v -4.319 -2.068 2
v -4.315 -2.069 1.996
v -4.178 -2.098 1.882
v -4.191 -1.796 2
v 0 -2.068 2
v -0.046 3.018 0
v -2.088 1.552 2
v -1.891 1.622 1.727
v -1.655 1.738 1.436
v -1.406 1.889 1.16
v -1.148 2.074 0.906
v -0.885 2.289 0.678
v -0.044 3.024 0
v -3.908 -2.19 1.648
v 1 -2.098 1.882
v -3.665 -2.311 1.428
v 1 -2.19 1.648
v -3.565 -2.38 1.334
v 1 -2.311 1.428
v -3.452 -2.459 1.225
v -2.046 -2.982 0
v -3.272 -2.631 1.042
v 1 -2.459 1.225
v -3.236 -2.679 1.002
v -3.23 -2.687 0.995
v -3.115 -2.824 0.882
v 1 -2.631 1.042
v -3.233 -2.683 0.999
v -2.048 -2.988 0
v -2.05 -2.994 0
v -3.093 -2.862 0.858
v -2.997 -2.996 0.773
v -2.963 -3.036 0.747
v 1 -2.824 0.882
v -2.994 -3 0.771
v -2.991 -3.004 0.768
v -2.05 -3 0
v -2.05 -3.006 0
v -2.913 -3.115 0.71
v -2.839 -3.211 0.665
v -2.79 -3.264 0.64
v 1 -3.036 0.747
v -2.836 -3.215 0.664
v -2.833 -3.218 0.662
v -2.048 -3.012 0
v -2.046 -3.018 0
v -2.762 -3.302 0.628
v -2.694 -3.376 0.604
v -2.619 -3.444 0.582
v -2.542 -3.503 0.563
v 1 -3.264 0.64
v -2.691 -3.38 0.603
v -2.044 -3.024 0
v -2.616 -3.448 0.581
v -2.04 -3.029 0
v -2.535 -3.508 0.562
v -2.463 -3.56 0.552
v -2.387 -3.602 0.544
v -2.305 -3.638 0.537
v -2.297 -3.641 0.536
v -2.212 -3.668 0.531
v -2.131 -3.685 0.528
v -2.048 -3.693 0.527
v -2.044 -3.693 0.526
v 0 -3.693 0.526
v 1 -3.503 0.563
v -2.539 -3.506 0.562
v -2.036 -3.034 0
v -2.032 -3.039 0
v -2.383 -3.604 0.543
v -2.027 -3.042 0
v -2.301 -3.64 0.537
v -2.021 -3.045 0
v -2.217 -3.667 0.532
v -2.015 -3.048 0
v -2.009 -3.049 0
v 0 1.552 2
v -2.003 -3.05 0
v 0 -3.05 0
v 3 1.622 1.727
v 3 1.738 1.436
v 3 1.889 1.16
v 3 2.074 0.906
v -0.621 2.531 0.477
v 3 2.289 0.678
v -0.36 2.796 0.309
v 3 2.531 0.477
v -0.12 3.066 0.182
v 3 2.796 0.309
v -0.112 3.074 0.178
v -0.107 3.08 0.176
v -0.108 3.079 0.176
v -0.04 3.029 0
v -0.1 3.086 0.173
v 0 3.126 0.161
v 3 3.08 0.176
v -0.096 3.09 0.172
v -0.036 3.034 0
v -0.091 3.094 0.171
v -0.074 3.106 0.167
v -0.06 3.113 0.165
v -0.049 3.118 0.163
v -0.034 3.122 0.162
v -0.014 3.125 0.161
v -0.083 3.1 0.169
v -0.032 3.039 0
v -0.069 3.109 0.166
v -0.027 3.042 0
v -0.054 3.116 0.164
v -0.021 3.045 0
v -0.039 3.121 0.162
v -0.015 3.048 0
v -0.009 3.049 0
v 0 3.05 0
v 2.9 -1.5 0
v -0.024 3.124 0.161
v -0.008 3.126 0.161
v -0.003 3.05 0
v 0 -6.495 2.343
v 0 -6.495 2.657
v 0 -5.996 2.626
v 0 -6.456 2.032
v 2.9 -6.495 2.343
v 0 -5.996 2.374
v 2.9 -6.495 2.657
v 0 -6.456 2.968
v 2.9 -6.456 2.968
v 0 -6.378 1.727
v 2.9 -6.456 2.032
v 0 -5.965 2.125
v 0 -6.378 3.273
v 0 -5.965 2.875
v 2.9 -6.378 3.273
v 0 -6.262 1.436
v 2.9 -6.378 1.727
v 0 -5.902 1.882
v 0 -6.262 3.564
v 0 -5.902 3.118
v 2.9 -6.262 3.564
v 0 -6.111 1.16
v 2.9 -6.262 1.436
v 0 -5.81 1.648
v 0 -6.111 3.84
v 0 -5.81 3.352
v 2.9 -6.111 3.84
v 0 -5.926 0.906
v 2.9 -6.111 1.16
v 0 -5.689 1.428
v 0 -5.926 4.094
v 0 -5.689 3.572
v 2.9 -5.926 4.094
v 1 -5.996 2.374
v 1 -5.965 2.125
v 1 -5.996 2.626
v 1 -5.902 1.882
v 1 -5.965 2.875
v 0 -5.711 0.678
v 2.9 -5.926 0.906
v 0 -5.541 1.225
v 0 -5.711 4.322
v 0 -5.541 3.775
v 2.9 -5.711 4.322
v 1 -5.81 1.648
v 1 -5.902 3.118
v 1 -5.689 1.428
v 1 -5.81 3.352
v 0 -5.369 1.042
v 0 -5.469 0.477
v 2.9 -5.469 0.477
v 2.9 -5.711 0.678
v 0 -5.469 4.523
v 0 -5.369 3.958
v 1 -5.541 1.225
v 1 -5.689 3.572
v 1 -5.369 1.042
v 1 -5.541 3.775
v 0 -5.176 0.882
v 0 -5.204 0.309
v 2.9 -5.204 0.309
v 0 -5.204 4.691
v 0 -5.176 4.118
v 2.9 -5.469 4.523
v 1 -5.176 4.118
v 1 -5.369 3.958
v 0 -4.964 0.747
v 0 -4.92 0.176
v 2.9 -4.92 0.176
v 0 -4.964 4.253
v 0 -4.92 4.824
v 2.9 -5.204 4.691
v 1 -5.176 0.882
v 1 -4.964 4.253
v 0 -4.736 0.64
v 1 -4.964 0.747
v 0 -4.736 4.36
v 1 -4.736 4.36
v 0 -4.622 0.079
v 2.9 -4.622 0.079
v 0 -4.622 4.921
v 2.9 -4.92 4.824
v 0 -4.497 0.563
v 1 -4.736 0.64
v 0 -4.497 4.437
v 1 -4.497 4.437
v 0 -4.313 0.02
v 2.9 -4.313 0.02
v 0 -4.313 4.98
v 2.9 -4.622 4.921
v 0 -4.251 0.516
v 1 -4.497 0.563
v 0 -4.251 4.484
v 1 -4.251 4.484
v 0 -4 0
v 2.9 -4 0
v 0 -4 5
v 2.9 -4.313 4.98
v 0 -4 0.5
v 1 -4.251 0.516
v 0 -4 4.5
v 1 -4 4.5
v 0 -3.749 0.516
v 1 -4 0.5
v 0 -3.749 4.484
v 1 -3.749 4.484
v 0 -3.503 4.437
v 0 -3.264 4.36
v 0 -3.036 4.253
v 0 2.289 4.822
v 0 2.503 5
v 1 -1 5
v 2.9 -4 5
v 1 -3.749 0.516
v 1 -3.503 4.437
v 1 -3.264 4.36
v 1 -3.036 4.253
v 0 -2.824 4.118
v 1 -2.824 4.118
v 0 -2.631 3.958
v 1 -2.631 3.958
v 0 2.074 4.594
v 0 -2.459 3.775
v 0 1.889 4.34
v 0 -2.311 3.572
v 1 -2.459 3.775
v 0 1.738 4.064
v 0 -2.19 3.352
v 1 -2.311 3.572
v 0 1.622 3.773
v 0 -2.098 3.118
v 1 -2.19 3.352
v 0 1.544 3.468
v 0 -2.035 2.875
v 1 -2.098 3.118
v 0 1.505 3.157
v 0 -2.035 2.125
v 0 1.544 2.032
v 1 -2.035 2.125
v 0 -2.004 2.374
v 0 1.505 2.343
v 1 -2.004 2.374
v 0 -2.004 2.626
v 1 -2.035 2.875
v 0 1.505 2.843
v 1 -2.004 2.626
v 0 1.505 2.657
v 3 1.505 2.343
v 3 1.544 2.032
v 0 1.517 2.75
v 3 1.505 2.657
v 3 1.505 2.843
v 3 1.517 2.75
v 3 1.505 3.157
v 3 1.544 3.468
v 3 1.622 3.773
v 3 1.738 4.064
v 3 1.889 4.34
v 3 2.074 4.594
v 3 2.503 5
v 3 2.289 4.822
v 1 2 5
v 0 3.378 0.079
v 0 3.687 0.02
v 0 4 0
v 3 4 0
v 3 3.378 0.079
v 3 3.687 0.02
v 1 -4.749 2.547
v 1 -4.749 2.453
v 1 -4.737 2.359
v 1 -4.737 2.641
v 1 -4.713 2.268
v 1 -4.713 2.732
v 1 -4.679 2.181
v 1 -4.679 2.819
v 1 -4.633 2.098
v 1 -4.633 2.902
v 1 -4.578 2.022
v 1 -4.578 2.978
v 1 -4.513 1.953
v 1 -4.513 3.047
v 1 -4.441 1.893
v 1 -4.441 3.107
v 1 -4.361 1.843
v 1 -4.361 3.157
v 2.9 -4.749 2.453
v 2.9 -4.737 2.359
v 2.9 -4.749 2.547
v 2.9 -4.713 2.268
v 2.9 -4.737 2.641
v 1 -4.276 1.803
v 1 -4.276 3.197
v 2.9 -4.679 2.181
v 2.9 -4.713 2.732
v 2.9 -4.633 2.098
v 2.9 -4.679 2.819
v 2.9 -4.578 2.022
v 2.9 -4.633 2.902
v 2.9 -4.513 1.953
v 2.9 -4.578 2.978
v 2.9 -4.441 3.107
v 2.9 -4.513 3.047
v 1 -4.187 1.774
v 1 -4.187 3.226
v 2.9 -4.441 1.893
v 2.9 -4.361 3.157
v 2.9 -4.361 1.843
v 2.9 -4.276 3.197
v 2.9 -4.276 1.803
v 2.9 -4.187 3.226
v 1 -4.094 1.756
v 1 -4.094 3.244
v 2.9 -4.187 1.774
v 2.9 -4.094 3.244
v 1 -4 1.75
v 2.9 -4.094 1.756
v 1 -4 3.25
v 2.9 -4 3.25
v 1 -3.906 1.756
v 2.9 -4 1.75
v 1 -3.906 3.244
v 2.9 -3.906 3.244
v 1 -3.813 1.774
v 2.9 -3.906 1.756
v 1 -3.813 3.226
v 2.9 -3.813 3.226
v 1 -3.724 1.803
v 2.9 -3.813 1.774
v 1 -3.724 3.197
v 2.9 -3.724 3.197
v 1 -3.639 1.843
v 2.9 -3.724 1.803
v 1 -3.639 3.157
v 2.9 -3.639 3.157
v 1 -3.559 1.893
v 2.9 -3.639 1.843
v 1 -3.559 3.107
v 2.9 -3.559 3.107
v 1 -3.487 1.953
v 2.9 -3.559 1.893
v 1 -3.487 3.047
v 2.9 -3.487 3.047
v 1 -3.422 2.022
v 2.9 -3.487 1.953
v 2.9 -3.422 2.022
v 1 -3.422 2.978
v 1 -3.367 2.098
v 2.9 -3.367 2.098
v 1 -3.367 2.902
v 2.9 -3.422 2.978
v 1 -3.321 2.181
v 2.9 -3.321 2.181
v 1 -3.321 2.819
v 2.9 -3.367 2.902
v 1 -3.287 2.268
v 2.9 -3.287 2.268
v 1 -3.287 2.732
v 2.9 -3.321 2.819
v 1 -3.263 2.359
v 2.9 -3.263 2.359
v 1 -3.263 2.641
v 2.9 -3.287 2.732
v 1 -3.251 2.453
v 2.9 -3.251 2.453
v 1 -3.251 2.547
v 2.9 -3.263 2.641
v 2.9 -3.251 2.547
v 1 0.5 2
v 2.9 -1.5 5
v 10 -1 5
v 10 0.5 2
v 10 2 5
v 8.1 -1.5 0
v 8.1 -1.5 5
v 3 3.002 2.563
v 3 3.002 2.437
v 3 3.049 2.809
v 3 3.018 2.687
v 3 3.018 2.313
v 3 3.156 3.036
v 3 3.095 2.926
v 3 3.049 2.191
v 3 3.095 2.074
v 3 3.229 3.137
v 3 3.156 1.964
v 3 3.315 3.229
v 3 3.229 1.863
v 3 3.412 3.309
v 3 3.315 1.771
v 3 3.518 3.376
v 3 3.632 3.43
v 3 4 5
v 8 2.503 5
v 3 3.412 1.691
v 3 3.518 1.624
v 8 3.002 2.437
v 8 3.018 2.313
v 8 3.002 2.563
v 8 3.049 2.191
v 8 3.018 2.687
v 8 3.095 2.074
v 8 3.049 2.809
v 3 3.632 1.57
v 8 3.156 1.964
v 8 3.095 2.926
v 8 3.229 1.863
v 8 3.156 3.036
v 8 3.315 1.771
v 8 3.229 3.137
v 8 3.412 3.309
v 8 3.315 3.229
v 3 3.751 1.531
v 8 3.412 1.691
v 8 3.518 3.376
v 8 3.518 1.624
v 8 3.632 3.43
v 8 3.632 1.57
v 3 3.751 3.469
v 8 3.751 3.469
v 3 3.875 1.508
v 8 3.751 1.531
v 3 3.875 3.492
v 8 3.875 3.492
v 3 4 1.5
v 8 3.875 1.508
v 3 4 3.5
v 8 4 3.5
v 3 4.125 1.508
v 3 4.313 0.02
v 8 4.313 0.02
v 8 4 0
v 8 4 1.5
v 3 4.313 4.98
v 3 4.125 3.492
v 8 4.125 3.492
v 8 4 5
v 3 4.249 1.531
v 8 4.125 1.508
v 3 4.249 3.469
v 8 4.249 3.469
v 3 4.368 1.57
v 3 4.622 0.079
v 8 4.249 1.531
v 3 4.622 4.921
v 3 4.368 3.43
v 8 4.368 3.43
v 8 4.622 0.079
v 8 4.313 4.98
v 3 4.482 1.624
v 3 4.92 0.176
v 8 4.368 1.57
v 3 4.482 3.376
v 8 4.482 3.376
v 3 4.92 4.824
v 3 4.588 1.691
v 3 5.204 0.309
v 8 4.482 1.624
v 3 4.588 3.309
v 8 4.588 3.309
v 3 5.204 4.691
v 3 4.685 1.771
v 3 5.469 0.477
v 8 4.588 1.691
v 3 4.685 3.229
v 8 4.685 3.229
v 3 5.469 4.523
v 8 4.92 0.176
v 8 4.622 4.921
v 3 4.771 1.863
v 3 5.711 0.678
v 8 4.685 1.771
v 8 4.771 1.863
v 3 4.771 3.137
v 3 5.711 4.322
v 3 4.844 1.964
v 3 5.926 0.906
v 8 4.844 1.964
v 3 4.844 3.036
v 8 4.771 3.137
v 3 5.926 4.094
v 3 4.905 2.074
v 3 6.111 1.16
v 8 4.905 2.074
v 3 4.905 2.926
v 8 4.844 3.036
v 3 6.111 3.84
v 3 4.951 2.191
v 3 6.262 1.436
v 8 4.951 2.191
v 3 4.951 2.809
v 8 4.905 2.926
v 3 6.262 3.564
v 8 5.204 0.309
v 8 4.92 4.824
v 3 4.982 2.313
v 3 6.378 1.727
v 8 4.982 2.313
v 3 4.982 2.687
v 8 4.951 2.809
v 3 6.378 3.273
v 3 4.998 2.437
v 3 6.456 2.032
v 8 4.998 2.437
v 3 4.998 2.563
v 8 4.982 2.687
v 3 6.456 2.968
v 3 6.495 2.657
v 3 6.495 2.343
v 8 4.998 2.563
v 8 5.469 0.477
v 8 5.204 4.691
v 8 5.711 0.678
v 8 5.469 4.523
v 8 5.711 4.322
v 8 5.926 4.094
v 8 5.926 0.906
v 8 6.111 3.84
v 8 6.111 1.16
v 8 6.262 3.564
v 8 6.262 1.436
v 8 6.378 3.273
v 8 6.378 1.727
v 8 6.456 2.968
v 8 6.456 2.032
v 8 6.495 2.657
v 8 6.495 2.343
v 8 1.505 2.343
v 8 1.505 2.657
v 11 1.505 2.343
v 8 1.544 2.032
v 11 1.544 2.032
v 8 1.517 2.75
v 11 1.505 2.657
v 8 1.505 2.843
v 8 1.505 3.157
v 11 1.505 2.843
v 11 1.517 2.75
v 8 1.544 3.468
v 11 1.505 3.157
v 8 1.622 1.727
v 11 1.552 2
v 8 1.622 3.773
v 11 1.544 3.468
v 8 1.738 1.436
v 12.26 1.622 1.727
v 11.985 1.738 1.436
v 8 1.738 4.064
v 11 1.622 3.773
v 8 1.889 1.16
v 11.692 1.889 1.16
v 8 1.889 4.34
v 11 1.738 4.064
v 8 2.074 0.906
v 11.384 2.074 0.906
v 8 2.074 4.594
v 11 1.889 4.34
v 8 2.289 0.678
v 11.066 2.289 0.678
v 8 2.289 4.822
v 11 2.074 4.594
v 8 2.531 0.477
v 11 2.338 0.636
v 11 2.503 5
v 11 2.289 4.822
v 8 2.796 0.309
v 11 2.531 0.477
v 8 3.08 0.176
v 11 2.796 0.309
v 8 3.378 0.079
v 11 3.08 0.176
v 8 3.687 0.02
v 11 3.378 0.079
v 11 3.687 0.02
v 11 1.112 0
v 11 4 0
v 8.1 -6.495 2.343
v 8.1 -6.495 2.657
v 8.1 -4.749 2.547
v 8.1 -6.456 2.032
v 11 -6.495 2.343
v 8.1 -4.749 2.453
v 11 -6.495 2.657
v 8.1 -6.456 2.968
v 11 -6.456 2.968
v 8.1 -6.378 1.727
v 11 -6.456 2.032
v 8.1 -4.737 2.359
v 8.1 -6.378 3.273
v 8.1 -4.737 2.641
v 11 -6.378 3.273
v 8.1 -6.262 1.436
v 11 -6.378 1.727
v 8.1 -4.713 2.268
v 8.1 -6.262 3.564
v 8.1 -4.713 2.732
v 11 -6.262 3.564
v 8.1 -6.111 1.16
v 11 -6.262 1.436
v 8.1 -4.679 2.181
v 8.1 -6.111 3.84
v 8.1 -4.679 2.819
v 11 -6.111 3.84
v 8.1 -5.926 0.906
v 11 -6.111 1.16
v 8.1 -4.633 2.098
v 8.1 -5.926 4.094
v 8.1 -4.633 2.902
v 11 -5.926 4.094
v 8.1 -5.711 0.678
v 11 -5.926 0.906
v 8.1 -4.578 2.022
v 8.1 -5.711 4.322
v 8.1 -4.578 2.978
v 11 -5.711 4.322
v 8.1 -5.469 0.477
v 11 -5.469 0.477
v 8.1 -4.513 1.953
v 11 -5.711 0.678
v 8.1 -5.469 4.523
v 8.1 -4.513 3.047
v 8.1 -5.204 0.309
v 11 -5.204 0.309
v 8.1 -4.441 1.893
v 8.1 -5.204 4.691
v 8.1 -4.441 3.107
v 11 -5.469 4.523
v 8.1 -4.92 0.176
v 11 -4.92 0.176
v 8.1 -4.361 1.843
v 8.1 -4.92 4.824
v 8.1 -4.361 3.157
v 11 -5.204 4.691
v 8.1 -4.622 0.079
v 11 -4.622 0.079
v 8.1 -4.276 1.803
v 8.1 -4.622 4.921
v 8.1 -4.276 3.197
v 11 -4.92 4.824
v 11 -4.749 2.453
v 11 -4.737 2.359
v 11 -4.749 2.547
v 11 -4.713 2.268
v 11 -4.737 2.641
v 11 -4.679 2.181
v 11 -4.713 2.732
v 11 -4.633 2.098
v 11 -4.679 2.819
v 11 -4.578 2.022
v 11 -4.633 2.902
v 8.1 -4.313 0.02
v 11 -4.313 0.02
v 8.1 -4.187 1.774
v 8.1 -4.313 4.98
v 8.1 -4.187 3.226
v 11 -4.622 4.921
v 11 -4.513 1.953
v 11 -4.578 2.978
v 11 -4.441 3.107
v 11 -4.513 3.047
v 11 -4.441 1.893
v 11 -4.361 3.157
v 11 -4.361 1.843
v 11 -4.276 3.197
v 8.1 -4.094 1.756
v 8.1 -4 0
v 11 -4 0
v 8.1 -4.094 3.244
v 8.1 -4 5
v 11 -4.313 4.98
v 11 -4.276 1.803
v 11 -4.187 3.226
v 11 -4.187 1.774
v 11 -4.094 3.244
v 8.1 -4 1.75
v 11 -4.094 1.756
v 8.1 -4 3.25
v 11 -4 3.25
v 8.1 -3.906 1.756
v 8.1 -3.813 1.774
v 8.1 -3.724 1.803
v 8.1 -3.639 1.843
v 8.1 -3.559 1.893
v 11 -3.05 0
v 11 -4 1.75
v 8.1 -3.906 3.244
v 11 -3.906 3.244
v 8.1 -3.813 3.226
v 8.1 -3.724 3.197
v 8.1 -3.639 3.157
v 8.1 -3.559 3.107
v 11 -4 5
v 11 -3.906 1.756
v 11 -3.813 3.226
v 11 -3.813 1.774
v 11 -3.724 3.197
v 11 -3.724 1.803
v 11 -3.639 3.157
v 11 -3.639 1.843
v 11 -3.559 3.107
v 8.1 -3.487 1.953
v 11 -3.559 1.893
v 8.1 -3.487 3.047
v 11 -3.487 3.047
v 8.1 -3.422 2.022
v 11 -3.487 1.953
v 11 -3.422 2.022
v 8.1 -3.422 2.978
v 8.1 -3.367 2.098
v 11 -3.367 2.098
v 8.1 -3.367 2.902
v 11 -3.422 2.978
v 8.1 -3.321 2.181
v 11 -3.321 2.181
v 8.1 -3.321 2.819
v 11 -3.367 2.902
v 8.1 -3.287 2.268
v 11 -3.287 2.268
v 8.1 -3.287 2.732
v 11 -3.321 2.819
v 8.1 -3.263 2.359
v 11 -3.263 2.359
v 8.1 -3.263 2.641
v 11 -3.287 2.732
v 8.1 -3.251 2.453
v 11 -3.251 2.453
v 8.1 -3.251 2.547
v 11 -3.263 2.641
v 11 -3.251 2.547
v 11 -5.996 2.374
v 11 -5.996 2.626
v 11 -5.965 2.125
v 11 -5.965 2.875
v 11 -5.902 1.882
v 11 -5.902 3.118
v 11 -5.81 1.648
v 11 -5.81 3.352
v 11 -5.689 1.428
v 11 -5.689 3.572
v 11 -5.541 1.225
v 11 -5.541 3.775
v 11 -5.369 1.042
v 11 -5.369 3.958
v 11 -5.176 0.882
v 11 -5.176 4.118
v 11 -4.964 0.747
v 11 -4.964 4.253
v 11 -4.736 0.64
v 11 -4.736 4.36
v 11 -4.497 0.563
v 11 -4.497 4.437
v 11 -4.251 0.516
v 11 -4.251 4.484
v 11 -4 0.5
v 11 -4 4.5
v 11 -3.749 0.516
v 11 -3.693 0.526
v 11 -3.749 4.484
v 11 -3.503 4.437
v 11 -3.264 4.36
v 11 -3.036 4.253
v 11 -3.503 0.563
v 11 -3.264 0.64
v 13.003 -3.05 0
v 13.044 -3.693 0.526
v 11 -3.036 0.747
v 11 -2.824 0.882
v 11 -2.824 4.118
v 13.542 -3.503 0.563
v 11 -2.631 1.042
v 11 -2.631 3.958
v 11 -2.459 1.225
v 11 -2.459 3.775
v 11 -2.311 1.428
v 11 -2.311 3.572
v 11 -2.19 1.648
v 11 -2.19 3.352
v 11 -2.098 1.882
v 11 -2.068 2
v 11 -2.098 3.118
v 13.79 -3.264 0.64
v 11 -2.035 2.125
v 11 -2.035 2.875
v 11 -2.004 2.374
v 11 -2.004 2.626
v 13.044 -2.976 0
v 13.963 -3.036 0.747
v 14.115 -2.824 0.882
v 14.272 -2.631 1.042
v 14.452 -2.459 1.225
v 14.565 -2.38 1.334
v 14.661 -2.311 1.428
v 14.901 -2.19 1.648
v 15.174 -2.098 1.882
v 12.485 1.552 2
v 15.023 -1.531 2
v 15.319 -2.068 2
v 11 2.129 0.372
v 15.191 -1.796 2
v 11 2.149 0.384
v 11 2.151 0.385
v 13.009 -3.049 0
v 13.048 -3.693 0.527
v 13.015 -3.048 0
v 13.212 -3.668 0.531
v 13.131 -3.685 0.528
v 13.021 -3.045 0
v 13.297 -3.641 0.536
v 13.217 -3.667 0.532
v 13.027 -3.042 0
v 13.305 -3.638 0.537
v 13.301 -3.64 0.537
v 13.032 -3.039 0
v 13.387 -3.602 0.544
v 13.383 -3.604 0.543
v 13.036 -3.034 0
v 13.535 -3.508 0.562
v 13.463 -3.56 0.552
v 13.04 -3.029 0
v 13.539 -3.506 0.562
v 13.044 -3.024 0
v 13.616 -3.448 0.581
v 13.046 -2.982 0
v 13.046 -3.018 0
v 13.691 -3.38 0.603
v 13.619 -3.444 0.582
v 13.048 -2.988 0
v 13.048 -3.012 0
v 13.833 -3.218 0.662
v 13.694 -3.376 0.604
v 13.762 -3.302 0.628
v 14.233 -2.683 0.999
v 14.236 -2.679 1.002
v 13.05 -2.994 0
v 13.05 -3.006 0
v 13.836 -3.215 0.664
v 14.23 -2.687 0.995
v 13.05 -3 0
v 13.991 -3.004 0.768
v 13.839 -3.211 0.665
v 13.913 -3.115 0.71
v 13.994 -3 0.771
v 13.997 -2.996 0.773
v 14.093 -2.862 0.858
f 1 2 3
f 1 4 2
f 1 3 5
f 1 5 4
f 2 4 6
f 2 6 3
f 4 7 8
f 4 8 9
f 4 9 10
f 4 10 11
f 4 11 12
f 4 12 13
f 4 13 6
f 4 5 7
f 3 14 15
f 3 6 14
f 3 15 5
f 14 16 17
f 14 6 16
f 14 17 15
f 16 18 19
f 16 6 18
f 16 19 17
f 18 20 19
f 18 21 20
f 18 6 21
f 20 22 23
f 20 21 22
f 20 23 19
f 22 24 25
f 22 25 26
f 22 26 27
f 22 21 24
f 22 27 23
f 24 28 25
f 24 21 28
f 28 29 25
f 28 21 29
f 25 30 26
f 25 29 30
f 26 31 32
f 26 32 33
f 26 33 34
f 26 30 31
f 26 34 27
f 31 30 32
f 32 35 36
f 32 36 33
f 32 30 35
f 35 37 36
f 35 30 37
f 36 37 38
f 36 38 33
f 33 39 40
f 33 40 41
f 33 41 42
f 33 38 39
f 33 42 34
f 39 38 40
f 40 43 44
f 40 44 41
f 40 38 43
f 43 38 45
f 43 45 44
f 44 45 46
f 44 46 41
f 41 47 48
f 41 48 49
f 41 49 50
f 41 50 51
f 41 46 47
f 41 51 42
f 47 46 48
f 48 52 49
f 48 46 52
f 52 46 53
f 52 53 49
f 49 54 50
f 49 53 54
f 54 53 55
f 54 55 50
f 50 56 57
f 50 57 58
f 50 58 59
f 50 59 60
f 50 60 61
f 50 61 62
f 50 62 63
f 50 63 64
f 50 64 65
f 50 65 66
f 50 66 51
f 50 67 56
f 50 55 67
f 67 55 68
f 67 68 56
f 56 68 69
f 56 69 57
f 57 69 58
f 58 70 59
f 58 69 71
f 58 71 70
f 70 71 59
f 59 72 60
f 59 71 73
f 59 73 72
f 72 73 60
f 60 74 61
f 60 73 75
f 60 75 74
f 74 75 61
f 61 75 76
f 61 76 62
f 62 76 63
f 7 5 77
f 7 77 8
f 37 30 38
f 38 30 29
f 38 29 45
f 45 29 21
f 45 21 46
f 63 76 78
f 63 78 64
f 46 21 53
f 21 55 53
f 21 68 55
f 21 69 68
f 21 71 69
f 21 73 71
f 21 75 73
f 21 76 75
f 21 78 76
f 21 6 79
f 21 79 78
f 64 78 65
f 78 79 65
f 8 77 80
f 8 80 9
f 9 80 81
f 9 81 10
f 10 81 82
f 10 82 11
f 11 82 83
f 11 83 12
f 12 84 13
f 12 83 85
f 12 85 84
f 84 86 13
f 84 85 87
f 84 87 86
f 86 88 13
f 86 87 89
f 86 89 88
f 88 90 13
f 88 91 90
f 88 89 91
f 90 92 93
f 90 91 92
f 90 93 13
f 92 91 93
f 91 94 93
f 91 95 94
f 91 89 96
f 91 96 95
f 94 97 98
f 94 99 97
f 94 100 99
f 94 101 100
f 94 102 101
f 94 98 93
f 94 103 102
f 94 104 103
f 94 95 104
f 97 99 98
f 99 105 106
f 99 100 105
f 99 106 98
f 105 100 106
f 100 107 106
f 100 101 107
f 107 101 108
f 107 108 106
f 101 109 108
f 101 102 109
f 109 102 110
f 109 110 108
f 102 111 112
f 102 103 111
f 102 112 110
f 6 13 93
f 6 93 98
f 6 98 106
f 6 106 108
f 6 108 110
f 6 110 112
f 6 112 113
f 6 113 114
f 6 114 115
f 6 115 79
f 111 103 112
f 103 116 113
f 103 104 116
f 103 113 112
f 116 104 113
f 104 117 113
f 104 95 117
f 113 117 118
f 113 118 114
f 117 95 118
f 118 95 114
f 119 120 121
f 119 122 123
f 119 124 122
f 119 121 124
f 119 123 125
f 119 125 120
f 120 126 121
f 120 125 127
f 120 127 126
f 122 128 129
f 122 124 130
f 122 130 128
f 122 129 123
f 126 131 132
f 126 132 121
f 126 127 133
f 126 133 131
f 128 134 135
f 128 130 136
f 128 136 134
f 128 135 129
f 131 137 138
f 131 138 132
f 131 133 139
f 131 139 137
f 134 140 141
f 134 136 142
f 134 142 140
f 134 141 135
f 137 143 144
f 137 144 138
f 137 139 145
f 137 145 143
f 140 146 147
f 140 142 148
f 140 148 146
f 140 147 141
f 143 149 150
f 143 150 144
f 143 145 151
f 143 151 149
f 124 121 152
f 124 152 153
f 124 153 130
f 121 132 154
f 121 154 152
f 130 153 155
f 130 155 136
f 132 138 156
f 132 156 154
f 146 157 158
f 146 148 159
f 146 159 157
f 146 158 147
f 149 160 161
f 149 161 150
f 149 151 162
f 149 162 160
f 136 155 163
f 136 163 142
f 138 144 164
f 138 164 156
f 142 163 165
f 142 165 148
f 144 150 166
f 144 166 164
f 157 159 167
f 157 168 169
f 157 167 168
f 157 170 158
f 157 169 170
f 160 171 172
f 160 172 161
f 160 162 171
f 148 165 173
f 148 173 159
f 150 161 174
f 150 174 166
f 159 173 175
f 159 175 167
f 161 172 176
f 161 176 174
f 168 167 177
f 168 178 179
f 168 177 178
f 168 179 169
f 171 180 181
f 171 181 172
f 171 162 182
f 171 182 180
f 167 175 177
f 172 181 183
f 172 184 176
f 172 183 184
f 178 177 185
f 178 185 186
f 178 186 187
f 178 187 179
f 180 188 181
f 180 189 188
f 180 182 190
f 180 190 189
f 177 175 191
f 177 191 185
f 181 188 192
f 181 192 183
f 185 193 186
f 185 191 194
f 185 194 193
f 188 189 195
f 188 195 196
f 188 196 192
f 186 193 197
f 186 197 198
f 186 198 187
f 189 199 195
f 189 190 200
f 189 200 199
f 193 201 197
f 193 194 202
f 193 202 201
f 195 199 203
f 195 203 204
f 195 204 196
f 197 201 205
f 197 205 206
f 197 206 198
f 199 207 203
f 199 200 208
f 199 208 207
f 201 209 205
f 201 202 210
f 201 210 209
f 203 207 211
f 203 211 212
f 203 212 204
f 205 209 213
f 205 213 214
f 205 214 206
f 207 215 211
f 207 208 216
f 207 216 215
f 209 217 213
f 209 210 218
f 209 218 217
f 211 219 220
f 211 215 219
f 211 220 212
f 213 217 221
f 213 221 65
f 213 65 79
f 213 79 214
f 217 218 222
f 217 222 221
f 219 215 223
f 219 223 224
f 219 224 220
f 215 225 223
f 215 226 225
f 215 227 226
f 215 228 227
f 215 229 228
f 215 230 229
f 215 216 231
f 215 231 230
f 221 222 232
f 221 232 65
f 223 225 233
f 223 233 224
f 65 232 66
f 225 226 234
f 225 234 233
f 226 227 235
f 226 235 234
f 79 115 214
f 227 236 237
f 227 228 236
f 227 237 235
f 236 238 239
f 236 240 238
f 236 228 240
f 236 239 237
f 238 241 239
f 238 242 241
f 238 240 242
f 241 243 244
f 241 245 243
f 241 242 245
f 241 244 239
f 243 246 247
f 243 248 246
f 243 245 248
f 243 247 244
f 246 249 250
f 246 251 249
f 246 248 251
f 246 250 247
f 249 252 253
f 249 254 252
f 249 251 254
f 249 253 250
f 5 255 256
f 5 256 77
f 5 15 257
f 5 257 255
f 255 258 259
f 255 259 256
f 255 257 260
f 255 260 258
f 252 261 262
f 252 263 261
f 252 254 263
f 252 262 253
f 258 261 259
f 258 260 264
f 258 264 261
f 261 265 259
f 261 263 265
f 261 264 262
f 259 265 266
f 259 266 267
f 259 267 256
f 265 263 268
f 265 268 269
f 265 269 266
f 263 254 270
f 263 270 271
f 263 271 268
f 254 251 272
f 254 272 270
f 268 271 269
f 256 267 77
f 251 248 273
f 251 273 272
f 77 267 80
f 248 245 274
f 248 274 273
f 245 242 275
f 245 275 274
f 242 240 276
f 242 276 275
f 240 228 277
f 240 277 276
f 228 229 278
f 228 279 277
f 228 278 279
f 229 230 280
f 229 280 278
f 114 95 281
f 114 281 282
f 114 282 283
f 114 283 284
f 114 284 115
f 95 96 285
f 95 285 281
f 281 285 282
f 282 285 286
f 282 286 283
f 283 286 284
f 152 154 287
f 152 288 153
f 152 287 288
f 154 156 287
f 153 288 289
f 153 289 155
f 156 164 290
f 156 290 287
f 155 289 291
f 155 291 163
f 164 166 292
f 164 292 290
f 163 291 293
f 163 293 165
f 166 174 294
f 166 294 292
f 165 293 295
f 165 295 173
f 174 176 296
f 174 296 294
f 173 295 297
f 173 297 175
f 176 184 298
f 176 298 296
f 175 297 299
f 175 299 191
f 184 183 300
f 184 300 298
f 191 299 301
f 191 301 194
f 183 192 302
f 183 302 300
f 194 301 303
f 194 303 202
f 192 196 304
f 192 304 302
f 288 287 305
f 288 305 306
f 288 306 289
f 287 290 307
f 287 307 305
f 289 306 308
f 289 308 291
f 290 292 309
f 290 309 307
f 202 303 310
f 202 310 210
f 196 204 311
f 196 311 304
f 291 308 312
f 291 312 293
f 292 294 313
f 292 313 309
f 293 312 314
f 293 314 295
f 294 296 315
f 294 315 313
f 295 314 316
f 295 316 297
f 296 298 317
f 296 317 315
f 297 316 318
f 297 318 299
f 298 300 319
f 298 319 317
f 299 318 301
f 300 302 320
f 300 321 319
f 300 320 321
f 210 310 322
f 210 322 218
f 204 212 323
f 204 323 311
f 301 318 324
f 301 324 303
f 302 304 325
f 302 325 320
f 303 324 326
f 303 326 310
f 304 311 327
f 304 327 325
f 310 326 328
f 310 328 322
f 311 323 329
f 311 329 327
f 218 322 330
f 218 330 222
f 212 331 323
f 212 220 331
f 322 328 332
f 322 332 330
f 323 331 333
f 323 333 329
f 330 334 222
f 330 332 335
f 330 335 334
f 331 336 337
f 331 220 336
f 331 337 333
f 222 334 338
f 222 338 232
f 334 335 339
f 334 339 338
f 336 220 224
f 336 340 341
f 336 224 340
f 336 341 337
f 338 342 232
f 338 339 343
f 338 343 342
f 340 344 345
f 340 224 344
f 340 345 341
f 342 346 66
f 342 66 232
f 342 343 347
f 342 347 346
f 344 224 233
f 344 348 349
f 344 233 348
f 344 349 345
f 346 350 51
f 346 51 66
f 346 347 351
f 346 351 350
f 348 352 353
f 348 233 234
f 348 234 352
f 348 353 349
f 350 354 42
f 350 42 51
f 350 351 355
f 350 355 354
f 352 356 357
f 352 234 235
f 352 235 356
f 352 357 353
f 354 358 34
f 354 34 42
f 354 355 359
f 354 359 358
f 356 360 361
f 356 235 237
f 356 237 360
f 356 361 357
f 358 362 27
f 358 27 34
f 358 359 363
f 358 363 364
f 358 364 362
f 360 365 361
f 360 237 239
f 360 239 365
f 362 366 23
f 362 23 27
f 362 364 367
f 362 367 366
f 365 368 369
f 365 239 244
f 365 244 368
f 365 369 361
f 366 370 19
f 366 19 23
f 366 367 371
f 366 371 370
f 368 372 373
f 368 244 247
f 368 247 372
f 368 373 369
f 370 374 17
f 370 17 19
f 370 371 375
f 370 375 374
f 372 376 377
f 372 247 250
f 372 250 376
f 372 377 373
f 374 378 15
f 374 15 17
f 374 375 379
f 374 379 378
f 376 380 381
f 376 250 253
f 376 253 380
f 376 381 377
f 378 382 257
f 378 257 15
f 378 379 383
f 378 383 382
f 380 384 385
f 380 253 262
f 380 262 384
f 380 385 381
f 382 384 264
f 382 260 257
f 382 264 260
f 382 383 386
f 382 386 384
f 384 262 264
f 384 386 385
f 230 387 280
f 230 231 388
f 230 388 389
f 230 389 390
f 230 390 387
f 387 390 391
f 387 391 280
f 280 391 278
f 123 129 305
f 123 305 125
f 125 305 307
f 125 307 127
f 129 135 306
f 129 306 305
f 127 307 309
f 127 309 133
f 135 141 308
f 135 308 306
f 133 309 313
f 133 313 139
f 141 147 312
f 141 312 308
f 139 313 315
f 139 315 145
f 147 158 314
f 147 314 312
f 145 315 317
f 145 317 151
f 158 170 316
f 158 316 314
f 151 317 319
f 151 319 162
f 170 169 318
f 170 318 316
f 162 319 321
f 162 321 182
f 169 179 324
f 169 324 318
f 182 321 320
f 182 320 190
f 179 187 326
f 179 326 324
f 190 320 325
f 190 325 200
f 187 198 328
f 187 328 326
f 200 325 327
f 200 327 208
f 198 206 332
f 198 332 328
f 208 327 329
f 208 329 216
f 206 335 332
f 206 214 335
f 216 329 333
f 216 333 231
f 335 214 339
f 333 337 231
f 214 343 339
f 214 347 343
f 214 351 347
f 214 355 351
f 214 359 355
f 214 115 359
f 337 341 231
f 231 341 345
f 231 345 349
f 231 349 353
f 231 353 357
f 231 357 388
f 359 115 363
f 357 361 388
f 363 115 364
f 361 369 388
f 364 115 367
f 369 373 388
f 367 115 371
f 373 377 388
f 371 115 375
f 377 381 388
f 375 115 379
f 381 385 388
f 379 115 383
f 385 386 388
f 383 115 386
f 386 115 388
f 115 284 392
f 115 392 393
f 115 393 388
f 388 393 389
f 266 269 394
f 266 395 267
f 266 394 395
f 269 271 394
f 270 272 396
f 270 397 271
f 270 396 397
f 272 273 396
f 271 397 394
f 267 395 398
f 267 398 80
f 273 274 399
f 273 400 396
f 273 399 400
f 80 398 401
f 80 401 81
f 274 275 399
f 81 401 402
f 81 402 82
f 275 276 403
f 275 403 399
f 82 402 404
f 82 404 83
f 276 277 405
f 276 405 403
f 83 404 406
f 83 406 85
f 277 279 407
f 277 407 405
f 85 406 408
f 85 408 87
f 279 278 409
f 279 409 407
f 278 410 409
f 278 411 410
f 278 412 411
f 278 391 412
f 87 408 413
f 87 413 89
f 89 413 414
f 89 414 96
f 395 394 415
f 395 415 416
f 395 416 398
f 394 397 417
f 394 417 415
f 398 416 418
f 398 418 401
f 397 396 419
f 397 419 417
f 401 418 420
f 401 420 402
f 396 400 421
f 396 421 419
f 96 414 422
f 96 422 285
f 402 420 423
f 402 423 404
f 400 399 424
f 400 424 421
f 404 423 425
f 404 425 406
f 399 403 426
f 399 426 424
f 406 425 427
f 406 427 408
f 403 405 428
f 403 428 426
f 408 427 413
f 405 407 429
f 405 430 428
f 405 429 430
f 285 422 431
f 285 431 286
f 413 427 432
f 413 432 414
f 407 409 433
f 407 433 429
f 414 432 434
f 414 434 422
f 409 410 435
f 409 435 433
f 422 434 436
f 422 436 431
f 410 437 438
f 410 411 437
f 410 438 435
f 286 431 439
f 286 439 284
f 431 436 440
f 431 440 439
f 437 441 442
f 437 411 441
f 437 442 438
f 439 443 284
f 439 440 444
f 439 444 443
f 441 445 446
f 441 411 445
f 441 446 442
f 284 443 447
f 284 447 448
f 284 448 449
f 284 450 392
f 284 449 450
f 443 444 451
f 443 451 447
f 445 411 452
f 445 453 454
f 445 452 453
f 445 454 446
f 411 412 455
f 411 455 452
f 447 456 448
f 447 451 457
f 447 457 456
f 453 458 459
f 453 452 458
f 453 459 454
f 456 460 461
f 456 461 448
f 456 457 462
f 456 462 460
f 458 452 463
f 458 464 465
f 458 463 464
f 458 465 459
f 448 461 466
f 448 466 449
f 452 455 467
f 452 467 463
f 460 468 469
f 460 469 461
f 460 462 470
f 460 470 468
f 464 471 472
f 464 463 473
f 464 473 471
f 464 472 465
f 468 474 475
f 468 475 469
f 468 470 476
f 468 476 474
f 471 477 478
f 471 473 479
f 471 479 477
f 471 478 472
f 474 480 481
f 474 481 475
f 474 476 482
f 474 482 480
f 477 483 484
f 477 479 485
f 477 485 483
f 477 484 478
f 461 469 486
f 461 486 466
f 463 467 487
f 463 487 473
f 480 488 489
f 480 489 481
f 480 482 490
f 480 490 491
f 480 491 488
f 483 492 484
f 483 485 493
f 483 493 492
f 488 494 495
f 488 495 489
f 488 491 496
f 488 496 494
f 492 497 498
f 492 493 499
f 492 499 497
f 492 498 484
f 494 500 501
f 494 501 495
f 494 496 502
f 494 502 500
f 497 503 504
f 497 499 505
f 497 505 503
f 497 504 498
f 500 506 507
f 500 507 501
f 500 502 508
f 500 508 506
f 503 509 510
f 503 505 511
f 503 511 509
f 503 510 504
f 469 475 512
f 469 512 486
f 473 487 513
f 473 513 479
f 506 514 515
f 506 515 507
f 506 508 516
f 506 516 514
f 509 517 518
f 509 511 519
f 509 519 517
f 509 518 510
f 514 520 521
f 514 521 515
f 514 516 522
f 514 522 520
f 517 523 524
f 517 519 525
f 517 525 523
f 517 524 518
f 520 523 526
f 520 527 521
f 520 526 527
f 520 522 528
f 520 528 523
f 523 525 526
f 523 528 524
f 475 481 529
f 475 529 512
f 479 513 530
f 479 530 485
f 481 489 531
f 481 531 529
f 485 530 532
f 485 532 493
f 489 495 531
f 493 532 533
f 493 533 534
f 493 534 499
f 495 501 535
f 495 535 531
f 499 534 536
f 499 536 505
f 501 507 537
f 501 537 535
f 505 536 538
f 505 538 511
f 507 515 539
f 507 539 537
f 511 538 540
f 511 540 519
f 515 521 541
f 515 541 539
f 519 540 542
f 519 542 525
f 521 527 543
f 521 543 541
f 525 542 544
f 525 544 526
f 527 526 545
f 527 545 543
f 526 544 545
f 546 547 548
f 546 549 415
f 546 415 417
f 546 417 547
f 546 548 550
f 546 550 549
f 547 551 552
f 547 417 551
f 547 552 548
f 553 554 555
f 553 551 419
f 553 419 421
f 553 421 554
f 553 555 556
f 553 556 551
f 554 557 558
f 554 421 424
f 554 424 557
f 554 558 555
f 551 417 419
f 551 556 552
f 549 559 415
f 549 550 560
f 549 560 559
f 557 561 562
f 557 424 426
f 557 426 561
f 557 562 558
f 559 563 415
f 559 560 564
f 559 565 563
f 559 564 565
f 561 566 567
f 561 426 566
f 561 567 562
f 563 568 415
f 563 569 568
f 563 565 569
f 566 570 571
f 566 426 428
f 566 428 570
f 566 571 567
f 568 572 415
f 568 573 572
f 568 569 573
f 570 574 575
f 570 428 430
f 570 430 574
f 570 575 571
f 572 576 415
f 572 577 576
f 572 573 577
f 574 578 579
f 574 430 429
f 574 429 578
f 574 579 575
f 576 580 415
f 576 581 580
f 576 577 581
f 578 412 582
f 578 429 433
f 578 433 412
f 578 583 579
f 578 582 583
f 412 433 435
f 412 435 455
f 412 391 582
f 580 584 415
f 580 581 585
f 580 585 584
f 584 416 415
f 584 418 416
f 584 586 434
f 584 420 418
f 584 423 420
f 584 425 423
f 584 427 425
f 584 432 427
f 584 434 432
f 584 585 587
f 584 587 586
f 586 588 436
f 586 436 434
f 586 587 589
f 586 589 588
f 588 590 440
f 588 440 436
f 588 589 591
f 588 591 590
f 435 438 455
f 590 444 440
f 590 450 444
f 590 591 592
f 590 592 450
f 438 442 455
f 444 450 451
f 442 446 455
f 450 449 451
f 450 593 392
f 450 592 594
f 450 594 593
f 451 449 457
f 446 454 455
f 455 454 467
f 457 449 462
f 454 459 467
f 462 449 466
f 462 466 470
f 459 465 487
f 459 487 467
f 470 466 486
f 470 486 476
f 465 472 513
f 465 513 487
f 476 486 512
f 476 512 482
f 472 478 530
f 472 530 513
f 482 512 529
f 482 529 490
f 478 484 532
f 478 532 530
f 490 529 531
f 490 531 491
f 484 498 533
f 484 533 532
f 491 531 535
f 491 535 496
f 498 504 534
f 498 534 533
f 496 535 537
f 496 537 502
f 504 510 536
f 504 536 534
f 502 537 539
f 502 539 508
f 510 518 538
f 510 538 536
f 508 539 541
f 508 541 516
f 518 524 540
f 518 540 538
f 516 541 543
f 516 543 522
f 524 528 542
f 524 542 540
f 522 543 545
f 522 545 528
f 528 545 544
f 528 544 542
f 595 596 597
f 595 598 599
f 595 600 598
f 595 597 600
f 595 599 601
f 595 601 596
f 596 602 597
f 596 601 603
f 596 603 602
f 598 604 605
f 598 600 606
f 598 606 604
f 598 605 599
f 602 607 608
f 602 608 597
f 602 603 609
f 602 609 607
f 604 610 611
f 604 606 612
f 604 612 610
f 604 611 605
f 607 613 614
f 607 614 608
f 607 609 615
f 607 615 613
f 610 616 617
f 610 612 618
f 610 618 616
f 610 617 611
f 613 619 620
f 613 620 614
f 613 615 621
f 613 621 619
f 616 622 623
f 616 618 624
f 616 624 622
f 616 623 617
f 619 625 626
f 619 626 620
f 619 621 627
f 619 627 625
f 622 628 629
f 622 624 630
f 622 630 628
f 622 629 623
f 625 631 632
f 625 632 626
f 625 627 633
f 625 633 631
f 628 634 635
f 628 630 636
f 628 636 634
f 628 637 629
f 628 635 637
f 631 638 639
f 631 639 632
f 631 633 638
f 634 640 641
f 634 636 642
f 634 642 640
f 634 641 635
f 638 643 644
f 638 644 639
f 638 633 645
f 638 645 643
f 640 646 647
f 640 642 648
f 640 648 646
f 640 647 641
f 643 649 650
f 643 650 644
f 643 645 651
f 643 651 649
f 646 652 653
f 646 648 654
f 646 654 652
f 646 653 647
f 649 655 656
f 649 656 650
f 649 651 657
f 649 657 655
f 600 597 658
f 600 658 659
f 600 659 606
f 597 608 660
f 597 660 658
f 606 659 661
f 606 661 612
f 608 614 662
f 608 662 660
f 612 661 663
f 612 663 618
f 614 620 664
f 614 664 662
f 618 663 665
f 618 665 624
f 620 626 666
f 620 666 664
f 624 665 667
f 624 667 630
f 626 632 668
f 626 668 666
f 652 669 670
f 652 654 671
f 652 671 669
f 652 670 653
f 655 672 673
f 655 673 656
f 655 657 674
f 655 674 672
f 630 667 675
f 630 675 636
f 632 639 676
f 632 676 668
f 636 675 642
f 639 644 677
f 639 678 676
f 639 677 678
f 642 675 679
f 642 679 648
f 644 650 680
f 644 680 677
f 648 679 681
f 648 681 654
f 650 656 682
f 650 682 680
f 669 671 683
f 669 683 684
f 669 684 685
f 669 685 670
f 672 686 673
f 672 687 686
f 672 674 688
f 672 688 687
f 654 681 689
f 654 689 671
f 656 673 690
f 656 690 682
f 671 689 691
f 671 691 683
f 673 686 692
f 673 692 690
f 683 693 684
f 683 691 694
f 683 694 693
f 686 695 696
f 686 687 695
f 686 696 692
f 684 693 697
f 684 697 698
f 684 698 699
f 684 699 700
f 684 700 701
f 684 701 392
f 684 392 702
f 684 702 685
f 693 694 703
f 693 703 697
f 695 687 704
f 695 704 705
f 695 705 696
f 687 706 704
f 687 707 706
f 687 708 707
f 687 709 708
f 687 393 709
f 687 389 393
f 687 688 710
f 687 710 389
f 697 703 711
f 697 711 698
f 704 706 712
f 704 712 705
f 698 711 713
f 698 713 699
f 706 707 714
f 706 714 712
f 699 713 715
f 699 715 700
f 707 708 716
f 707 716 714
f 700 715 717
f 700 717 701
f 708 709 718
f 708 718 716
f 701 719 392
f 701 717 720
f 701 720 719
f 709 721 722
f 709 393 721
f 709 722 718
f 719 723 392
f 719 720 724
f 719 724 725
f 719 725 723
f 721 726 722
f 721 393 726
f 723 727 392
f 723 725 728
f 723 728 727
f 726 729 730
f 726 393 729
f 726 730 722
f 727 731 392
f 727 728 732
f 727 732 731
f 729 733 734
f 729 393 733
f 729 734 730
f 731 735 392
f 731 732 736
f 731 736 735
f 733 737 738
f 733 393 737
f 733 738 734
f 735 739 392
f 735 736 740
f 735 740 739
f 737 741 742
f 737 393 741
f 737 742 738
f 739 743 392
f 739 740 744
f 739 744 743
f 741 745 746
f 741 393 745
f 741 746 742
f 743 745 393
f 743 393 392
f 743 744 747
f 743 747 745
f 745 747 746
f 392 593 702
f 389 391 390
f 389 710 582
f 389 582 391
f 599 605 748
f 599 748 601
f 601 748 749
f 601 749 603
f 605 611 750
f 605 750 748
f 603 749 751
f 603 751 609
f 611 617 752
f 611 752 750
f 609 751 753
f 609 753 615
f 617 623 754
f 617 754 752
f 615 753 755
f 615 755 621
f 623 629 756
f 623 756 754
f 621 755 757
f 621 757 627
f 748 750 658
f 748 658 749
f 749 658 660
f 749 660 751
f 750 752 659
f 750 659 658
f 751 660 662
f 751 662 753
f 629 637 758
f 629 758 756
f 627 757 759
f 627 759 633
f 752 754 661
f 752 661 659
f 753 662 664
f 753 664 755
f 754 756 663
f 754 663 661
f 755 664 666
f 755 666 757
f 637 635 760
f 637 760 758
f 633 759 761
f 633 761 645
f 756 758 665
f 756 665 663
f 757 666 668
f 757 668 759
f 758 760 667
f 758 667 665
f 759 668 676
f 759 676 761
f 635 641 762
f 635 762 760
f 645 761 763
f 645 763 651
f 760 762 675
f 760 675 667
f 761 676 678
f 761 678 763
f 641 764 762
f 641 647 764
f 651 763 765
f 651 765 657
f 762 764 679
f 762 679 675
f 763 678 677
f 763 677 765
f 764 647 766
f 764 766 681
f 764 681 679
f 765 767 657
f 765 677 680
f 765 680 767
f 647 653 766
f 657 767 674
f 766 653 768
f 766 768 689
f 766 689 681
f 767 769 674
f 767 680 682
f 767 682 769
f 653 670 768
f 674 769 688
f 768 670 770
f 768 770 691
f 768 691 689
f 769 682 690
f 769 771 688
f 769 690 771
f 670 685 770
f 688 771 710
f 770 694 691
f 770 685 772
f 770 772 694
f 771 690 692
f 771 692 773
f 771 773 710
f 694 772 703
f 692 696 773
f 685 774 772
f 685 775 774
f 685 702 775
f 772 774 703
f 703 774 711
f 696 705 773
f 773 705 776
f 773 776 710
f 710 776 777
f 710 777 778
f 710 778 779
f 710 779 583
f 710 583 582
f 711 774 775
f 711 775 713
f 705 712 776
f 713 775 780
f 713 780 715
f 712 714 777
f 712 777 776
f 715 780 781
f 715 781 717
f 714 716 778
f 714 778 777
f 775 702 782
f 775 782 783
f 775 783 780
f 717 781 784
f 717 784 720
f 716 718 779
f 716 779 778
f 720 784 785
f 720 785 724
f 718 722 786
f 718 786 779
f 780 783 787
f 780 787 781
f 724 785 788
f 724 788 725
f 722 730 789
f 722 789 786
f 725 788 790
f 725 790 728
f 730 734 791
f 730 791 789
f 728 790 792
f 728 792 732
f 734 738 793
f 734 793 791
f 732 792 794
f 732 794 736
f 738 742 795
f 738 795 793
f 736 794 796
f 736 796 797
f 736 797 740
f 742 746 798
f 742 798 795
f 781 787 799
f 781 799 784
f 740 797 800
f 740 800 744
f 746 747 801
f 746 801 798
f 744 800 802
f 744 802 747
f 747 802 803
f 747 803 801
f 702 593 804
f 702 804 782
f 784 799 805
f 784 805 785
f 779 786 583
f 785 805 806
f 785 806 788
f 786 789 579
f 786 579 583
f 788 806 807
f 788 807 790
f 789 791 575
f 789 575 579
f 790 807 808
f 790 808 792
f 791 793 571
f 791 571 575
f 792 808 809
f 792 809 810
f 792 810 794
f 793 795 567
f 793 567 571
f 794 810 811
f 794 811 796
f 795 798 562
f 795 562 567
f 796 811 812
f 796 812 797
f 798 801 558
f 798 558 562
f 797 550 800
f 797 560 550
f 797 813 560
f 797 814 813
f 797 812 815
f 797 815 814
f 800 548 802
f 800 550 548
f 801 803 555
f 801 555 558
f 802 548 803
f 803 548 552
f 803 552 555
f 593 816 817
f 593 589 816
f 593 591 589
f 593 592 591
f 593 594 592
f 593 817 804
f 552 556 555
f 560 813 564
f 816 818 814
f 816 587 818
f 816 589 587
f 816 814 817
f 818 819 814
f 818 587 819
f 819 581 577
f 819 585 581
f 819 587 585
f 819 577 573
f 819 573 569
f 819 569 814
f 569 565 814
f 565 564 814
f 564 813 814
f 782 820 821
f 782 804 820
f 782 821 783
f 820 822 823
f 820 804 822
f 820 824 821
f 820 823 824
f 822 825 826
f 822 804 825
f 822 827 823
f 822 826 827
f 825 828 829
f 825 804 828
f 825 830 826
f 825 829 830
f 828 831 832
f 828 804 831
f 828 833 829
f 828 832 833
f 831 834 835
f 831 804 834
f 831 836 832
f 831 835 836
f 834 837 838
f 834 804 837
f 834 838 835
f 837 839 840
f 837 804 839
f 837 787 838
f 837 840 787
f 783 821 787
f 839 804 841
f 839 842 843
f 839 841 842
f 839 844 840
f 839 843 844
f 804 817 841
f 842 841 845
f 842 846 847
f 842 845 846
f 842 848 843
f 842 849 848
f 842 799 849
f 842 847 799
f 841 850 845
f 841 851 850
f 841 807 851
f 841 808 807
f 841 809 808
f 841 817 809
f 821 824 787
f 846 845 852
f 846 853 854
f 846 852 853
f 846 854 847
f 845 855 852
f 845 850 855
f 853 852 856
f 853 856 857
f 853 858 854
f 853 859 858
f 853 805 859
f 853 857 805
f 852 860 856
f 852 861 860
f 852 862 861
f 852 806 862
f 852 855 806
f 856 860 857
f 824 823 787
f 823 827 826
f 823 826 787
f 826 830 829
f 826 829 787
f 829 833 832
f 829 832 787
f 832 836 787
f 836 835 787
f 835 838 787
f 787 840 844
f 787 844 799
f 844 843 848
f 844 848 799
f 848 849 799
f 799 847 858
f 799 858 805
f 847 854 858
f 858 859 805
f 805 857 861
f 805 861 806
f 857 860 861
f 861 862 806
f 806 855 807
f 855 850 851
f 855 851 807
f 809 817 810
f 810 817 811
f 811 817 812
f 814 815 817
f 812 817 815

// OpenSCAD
$fn=50;


module gear_mesh(length, gap, depth) {
  rotate([0,90,0]) linear_extrude(length) polygon([[0,0],[0,gap],[depth,gap/2]]);
}


module top() {
  difference() {

    union() {
      translate([-2,-3,0]) bottom();
      hull() {
        for (qq=[-1,1]) {
          translate([0,qq*8/2,5/2]) rotate([0,90,0]) cylinder(11,d=5);
        }
      }
    }

    // botton flap chop()
    # translate([-5,-8/2,2.5]) rotate([0,90,0]) cylinder(5,d=4);
    # translate([11,-8/2,2.5]) rotate([0,90,0]) cylinder(5,d=4);

    // top flap chop()
    # translate([-3,8/2,2.5]) rotate([0,90,0]) cylinder(3,d=5);
    # translate([11,8/2,2.5]) rotate([0,90,0]) cylinder(3,d=5);

    // top screw hole
    translate([0,8/2,5/2]) rotate([0,90,0]) cylinder(11,d=2);
    
    // bottom screw hole and screw head recess
    translate([0,-8/2,5/2]) rotate([0,90,0]) cylinder(1,d=4);
    translate([0,-8/2,5/2]) rotate([0,90,0]) cylinder(11,d=1.5);

    // top chops - round
    for (offsets=[0,8]) {
      #translate([offsets,4,5/2]) rotate([0,90,0]) cylinder(3,d=5);
      // trim off a bit of the top so the overhang is not messy
      #translate([offsets,4,6/2]) rotate([0,90,0]) cylinder(3,d=5);
    }

    // bottom chop - square
    translate([2.9,-6.5,0]) cube([5.2,5,5]);
    //translate([3,-6.5,0]) cube([5,5,5]);

    // gear catcher
    translate([1,-1,5]) gear_mesh(9,3,3);
  }
}

module bottom() {
  // TODO copy sizes from previous
  module b0(x) { translate([0,0,0]) cylinder(2,d1=.1,d2=x); }
  hull() {
    // bottom
    translate([0,0,0]) b0(5);
    translate([15,0,0]) b0(5);
    // top
    translate([2,6,0]) b0(2);
    translate([12,6,0]) b0(2);
  }
}

module testlink() {
  top();
  translate([-2,-3,0]) bottom();
}

//testlink();
top();
//bottom();
